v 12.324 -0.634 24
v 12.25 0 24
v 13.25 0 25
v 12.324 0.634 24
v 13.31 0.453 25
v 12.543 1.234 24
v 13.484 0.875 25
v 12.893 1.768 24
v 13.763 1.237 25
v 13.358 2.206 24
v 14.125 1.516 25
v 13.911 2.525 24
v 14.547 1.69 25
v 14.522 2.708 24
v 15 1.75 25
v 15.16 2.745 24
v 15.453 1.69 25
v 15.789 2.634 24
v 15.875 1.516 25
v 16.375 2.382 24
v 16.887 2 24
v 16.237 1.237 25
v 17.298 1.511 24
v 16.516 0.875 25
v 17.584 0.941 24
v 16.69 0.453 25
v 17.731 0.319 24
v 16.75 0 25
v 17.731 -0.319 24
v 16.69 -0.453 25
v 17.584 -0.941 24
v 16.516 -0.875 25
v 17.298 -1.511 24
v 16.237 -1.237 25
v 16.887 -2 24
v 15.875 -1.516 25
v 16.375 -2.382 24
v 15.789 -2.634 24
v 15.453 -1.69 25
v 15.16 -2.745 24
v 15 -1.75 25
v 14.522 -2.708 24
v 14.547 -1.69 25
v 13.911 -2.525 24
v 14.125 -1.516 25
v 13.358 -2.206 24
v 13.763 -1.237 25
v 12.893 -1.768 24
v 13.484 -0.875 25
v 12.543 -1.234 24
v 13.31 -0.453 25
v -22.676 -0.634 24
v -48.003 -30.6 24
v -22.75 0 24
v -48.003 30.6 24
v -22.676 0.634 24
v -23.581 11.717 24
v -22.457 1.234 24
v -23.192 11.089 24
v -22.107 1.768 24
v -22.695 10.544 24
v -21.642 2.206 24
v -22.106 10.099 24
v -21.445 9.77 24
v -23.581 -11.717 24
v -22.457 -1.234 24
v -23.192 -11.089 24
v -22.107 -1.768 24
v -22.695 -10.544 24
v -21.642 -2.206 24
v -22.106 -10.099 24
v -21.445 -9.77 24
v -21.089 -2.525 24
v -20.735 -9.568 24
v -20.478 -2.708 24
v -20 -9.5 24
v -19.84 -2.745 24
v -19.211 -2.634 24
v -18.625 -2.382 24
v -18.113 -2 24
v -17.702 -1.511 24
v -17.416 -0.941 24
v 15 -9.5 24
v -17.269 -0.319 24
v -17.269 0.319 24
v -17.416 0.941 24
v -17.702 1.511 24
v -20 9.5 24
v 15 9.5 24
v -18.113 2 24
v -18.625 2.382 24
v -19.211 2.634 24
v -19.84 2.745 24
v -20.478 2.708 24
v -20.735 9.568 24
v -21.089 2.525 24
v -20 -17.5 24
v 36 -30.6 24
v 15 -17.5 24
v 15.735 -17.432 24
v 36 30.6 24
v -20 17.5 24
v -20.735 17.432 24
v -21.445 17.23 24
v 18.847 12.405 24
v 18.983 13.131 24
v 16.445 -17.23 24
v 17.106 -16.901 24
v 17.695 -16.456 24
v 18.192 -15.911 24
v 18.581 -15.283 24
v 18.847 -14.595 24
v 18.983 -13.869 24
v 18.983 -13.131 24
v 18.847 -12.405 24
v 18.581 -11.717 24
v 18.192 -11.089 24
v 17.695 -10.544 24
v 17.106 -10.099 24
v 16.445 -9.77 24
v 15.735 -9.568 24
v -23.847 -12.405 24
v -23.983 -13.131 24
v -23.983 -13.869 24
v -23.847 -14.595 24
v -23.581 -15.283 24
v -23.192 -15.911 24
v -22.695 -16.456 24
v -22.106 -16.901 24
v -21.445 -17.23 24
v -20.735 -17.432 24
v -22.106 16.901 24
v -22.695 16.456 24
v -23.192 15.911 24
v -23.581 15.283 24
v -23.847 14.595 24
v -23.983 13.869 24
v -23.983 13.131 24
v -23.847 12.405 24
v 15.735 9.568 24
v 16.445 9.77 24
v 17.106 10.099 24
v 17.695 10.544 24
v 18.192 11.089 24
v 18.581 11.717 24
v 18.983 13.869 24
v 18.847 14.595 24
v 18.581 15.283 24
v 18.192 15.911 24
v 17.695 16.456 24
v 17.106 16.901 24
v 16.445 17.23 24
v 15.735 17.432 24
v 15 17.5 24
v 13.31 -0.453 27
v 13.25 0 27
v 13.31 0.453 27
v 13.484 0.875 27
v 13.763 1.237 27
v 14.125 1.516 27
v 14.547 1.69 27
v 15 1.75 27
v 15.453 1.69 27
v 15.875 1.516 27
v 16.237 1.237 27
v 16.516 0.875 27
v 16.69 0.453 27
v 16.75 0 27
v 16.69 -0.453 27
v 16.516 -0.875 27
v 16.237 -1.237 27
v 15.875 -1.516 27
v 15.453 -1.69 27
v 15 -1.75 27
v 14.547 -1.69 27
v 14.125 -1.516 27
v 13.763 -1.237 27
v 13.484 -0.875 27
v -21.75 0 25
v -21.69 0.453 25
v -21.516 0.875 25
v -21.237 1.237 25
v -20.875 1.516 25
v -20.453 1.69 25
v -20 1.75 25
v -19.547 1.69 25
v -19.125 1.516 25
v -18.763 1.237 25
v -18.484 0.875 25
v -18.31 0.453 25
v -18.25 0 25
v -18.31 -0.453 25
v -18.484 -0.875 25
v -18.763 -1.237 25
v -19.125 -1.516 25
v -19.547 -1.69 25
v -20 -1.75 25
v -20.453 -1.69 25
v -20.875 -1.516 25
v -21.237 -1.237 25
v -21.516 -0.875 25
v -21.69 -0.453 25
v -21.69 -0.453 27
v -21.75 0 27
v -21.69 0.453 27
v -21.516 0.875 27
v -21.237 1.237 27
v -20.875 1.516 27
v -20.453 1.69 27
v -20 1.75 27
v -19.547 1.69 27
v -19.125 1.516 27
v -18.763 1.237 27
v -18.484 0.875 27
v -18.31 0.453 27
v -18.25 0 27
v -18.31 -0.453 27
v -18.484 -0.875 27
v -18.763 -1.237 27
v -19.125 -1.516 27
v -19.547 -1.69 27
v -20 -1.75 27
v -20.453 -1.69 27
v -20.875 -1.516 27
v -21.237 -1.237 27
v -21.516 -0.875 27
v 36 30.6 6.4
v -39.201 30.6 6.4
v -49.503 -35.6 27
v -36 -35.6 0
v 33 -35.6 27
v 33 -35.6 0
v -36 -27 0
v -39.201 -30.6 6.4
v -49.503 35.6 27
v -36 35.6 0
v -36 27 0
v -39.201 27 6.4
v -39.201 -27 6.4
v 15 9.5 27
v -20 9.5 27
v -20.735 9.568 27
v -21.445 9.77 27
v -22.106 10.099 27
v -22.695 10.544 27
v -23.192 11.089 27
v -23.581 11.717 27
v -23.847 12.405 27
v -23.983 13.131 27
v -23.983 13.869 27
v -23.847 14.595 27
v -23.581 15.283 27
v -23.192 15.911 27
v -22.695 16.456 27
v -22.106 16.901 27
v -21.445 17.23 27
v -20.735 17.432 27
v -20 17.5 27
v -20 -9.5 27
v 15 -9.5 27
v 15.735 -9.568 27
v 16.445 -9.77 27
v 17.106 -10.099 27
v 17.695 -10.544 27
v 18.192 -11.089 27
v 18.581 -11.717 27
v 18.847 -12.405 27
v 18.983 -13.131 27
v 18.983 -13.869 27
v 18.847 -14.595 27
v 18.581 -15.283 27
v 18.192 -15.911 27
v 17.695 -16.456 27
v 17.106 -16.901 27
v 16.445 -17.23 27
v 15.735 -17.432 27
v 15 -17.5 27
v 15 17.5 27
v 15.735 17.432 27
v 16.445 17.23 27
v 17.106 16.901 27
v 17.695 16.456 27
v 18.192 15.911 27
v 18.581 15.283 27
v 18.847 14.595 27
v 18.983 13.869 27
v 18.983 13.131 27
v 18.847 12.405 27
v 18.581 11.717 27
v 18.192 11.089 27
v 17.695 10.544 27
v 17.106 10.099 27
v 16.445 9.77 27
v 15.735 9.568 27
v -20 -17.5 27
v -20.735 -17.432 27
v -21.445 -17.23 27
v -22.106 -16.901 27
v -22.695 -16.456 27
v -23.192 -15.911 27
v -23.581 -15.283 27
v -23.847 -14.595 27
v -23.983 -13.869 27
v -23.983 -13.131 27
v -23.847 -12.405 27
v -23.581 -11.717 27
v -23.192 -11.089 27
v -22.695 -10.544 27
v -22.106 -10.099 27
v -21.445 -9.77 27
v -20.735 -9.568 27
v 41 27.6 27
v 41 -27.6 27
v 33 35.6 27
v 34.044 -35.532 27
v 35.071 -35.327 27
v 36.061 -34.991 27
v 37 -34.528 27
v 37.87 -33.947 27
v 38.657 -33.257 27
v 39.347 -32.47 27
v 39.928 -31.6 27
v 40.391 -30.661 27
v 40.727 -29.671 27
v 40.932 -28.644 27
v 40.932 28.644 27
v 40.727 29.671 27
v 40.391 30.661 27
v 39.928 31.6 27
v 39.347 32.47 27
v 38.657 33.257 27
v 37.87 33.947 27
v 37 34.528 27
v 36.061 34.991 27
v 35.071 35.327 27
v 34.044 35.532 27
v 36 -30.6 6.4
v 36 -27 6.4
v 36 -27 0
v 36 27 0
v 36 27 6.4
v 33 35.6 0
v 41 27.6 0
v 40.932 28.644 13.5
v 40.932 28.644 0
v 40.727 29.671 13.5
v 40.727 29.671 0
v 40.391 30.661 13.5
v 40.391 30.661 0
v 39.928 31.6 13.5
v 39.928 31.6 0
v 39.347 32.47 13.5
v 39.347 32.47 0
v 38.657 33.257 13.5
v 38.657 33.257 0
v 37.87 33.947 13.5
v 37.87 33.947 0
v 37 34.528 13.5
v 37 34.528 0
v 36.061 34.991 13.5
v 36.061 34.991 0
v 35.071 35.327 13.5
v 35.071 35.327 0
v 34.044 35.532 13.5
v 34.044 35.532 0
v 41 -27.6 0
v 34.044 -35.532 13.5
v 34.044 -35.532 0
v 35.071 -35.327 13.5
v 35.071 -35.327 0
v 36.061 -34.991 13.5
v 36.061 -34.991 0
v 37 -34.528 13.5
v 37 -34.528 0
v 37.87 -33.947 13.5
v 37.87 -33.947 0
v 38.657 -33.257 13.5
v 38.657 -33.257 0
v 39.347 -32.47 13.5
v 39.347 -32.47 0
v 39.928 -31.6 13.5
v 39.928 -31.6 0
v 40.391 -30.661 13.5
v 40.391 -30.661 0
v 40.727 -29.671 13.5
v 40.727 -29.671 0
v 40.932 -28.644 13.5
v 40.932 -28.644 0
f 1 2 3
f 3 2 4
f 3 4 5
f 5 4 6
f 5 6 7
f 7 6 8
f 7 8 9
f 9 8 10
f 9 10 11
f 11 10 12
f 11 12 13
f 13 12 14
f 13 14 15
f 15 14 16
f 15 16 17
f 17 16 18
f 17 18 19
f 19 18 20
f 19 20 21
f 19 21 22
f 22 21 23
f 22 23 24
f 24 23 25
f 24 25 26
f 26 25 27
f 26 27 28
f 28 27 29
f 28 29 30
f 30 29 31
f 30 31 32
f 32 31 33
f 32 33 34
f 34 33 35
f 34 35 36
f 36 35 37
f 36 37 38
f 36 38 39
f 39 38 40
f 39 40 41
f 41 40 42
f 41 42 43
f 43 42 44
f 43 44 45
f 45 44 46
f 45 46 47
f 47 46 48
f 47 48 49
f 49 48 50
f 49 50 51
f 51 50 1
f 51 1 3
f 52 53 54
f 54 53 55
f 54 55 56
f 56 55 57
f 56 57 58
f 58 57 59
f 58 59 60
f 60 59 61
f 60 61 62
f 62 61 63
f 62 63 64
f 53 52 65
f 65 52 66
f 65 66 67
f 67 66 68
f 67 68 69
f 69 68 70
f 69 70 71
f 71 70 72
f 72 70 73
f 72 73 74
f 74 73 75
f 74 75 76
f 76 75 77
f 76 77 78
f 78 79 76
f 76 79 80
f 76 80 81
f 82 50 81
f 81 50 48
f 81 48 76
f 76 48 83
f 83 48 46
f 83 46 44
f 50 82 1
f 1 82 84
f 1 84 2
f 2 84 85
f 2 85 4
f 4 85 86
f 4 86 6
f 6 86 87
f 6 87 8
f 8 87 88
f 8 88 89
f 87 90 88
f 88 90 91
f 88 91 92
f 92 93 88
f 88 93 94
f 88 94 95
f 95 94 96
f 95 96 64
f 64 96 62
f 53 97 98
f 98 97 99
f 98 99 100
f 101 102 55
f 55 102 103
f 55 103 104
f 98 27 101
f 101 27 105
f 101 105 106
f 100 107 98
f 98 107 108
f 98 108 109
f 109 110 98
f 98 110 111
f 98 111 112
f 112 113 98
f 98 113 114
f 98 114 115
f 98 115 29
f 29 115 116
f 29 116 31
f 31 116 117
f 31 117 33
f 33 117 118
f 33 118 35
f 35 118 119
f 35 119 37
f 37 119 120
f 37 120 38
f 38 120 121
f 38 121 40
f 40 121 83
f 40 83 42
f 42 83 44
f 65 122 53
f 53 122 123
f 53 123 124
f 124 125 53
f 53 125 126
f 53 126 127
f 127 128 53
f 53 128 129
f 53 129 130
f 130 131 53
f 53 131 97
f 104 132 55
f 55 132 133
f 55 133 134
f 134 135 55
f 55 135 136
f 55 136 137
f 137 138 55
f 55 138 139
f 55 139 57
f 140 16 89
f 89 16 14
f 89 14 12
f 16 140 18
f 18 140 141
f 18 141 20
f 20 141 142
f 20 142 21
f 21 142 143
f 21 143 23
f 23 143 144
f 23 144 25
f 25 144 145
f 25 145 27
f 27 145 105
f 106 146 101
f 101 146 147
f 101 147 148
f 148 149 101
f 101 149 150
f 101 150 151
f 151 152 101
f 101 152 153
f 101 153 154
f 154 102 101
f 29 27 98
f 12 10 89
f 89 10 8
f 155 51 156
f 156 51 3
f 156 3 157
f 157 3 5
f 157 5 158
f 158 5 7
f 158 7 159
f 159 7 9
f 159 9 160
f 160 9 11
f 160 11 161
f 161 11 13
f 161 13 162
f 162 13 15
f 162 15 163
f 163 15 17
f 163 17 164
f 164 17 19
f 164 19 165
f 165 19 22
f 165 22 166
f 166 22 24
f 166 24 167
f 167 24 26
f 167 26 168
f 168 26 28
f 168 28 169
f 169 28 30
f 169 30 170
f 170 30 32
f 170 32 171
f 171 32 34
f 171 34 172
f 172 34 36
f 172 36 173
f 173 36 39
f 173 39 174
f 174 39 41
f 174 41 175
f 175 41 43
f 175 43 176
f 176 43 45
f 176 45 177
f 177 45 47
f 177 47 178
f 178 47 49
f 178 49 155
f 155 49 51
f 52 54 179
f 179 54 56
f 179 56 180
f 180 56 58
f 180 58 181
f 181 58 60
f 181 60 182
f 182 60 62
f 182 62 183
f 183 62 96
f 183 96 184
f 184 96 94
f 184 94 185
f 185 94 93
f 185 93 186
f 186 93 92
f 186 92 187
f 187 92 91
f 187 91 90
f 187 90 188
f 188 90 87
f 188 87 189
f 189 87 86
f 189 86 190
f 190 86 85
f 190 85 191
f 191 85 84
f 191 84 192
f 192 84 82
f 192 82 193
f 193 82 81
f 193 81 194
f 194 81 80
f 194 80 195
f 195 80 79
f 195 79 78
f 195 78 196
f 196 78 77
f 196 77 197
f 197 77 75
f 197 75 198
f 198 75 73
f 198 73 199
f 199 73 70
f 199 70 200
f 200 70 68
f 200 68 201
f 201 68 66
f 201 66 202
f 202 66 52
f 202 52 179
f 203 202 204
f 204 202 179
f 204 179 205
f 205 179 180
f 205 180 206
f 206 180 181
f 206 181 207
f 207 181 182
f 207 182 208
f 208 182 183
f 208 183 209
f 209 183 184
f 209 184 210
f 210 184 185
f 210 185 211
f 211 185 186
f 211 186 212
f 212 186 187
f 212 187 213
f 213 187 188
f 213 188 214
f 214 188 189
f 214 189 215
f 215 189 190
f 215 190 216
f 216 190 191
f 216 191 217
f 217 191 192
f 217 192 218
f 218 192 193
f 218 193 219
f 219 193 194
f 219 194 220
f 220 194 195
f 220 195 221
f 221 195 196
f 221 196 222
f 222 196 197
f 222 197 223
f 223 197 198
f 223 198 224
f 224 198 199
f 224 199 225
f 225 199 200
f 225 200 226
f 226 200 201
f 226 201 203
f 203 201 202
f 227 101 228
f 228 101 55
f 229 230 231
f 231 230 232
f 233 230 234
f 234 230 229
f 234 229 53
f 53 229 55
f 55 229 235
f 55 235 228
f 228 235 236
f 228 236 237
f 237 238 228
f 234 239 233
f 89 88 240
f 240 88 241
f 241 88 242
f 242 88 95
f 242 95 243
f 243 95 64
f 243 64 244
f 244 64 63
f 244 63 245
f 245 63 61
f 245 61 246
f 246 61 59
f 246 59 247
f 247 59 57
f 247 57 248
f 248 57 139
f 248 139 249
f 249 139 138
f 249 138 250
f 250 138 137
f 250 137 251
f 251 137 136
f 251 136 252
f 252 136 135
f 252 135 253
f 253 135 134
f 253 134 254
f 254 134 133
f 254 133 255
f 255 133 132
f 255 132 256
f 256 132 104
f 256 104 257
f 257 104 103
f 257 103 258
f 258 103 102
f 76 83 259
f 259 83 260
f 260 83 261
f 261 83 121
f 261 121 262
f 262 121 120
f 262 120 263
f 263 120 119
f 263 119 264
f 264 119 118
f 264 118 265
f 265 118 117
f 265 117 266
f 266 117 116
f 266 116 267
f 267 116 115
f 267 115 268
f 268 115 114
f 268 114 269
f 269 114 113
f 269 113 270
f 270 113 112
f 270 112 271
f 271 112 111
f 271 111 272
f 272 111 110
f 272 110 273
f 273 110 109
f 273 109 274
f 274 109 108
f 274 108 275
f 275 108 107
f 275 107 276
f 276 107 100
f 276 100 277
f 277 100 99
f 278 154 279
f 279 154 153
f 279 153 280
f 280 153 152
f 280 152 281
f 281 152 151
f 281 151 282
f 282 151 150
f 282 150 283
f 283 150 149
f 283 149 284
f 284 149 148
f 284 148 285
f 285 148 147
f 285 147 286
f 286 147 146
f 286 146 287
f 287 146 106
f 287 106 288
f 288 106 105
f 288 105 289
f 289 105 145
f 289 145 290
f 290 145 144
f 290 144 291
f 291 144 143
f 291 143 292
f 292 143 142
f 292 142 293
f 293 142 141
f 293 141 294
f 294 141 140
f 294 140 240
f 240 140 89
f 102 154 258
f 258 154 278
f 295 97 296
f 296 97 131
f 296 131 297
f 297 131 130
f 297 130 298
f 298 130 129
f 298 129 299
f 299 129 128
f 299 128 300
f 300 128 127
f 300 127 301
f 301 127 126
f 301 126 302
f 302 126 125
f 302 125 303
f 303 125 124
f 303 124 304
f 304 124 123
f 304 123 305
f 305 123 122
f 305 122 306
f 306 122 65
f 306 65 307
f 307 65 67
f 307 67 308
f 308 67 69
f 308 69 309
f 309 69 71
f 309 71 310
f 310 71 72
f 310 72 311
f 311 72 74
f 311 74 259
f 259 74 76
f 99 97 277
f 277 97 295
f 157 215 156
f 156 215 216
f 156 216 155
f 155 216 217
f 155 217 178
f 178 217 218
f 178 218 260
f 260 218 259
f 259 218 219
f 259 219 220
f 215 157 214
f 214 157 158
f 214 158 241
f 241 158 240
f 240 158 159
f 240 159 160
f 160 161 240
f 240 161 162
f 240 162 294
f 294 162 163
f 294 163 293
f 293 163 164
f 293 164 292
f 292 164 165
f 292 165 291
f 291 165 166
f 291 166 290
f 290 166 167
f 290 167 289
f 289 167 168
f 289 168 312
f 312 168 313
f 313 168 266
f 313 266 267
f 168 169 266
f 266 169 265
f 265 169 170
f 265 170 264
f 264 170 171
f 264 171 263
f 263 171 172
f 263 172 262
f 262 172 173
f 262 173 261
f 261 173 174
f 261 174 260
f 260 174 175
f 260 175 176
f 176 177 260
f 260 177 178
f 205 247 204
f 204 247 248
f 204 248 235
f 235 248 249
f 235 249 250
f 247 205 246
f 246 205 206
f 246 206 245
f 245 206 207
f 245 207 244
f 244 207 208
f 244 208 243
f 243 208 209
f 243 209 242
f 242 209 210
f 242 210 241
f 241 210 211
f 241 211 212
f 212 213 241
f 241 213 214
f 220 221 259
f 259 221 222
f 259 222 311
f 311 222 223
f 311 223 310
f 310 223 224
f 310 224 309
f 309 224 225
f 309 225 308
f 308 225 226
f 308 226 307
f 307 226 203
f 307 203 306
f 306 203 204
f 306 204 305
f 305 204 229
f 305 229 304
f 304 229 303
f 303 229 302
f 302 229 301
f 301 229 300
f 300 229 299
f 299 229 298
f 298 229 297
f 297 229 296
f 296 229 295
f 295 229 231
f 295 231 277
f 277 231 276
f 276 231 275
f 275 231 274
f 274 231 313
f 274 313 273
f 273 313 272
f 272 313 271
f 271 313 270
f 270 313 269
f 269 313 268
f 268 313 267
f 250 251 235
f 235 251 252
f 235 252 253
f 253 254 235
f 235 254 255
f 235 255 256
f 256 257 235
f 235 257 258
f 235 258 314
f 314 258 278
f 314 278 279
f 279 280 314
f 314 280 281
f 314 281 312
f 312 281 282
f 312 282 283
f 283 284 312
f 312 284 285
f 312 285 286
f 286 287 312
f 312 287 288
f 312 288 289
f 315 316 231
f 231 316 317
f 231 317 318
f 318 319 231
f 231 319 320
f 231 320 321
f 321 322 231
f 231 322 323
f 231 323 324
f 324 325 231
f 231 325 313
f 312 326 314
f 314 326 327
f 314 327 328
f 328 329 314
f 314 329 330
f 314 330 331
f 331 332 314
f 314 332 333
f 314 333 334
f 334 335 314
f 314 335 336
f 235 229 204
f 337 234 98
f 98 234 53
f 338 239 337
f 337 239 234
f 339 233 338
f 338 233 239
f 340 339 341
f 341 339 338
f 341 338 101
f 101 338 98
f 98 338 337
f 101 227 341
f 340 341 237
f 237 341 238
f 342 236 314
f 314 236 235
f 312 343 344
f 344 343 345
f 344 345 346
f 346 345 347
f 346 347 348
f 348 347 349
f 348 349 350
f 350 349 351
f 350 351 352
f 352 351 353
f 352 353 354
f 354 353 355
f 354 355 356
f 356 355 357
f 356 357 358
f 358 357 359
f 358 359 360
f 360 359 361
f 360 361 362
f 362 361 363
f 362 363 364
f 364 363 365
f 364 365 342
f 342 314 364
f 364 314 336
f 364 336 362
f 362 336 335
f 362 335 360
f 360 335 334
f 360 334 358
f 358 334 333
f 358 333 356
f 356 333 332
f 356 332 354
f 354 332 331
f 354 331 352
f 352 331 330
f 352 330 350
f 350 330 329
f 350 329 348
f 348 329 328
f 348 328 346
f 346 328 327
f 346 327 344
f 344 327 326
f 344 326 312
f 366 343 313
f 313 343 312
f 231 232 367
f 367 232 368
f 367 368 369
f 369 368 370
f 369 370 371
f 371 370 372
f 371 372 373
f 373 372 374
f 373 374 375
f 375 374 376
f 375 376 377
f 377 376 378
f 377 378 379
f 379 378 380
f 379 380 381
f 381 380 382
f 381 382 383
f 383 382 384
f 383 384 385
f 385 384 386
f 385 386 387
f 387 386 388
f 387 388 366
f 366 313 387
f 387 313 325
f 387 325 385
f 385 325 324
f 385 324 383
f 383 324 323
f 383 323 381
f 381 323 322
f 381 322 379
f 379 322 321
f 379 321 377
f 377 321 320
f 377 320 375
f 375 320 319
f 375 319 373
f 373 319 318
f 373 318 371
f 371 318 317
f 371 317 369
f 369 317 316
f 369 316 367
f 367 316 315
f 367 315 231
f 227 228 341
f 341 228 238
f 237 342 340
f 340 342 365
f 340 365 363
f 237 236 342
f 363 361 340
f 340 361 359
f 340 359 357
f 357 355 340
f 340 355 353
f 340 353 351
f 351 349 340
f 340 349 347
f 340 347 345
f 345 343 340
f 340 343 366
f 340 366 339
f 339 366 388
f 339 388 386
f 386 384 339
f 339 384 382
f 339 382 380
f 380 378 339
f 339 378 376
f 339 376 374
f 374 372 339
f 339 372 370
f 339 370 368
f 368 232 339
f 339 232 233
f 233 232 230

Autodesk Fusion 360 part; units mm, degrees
sketch "Sketch1" plane through (0, 0, 0) normal (0, 0, 1) x (1, 0, 0)
  line L0 (36, 27) -> (-36, 27)
  line L1 (-36, 27) -> (-36, -27)
  line L2 (-36, -27) -> (36, -27)
  line L3 (36, -27) -> (36, 27)
  line L4 (36, 30.6) -> (-36, 30.6)
  line L5 (-36, 35.6) -> (-36, -30.6)
  line L6 (-36, -30.6) -> (36, -30.6)
  line L7 (36, -30.6) -> (36, 30.6)
  line L8 (33, 35.6) -> (-36, 35.6)
  line L9 (41, -27.6) -> (41, 27.6)
  line L10 (33, -35.6) -> (-36, -35.6)
  line L11 (-36, -35.6) -> (-36, 30.6)
  arc A0 (41, 27.6) -> (33, 35.6) centre (33, 27.6) ccw
  arc A1 (33, -35.6) -> (41, -27.6) centre (33, -27.6) ccw
  circle A2 centre (-20, 0) radius 1.75
  circle A3 centre (15, 0) radius 1.75
  line L12 (-20, 9.5) -> (15, 9.5)
  arc A4 (15, 9.5) -> (15, 17.5) centre (15, 13.5) ccw
  line L13 (15, 17.5) -> (-20, 17.5)
  arc A5 (-20, 17.5) -> (-20, 9.5) centre (-20, 13.5) ccw
  line L14 (-20, 13.5) -> (15, 13.5) construction
  line L15 (1.75, 0) -> (22.5, 0)
  line L16 (-20, -9.5) -> (15, -9.5)
  line L17 (15, -17.5) -> (-20, -17.5)
  arc A6 (15, -17.5) -> (15, -9.5) centre (15, -13.5) ccw
  arc A7 (-20, -9.5) -> (-20, -17.5) centre (-20, -13.5) ccw
  dimension "d1" = 72
  dimension "d2" = 54
  dimension "d3" = 61.2
  dimension "d6" = 8
  dimension "d32" = 3.5
  dimension "d33" = 3.5
  dimension "d34" = 8
extrude "Extrude1" add sketch "Sketch1" along normal blind 6.4 contours L3 L4 L5 L6 L7 L8 L9 L10 L11 A0 A1 | L0 L4 L5 L7 L11 | L2 L5 L6 L7 L11
extrude "Extrude2" add sketch "Sketch1" along normal blind 24 contours L3 L4 L5 L6 L7 L8 L9 L10 L11 A0 A1
extrude "Extrude3" add sketch "Sketch1" along normal blind 27 and the other way blind -24
sketch "Sketch2" plane through (0, -35.6, 0) normal (0, -1, 0) x (1, 0, 0)
  line L0 (-36, 0) -> (33, 0)
  line L1 (33, 0) -> (33, 27)
  line L2 (-36, 27) -> (-36, 0)
  line L3 (-36, 0) -> (-49.5029, 27)
  line L4 (-36, 0) -> (-6, 0) construction
  line L5 (-36, 27) -> (-49.5029, 27)
  line L6 (33, 27) -> (-36, 27)
  line L7 (-36, 27) -> (-36, 24)
  line L8 (-36, 24) -> (-36.4845, 24)
  line L9 (-36.4845, 24) -> (-48.0026, 24)
  line L10 (-36, 0) -> (-36, 6.4)
  line L11 (-36, 6.4) -> (-36, 6)
  line L12 (-36, 6.4) -> (-39.2007, 6.4)
  dimension "d11" = 116.57
  dimension "d25" = 6.4
extrude "Extrude4" add sketch "Sketch2" against normal blind 5 contours L2 L3 L10 L11 L12 | L2 L3 L8 L9 L12
extrude "Extrude5" add sketch "Sketch2" along normal blind -71.2 and the other way blind 66.2 contours L2 L3 L10 L11 L12 | L2 L3 L8 L9 L12
extrude "Extrude6" add sketch "Sketch2" against normal blind 71.2 contours L2 L3 L5 L7 L8 L9
extrude "Extrude7" add sketch "Sketch2" against normal blind 8.6 contours L2 L3 L10 L11 L12
extrude "Extrude8" add sketch "Sketch2" along normal blind -66.2 and the other way blind 62.6 contours L2 L3 L10 L11 L12
chamfer "Chamfer1" distance 1 angle 45 2 edges at (-21.6316, 0.6328, 24) (13.3684, 0.6328, 24)
